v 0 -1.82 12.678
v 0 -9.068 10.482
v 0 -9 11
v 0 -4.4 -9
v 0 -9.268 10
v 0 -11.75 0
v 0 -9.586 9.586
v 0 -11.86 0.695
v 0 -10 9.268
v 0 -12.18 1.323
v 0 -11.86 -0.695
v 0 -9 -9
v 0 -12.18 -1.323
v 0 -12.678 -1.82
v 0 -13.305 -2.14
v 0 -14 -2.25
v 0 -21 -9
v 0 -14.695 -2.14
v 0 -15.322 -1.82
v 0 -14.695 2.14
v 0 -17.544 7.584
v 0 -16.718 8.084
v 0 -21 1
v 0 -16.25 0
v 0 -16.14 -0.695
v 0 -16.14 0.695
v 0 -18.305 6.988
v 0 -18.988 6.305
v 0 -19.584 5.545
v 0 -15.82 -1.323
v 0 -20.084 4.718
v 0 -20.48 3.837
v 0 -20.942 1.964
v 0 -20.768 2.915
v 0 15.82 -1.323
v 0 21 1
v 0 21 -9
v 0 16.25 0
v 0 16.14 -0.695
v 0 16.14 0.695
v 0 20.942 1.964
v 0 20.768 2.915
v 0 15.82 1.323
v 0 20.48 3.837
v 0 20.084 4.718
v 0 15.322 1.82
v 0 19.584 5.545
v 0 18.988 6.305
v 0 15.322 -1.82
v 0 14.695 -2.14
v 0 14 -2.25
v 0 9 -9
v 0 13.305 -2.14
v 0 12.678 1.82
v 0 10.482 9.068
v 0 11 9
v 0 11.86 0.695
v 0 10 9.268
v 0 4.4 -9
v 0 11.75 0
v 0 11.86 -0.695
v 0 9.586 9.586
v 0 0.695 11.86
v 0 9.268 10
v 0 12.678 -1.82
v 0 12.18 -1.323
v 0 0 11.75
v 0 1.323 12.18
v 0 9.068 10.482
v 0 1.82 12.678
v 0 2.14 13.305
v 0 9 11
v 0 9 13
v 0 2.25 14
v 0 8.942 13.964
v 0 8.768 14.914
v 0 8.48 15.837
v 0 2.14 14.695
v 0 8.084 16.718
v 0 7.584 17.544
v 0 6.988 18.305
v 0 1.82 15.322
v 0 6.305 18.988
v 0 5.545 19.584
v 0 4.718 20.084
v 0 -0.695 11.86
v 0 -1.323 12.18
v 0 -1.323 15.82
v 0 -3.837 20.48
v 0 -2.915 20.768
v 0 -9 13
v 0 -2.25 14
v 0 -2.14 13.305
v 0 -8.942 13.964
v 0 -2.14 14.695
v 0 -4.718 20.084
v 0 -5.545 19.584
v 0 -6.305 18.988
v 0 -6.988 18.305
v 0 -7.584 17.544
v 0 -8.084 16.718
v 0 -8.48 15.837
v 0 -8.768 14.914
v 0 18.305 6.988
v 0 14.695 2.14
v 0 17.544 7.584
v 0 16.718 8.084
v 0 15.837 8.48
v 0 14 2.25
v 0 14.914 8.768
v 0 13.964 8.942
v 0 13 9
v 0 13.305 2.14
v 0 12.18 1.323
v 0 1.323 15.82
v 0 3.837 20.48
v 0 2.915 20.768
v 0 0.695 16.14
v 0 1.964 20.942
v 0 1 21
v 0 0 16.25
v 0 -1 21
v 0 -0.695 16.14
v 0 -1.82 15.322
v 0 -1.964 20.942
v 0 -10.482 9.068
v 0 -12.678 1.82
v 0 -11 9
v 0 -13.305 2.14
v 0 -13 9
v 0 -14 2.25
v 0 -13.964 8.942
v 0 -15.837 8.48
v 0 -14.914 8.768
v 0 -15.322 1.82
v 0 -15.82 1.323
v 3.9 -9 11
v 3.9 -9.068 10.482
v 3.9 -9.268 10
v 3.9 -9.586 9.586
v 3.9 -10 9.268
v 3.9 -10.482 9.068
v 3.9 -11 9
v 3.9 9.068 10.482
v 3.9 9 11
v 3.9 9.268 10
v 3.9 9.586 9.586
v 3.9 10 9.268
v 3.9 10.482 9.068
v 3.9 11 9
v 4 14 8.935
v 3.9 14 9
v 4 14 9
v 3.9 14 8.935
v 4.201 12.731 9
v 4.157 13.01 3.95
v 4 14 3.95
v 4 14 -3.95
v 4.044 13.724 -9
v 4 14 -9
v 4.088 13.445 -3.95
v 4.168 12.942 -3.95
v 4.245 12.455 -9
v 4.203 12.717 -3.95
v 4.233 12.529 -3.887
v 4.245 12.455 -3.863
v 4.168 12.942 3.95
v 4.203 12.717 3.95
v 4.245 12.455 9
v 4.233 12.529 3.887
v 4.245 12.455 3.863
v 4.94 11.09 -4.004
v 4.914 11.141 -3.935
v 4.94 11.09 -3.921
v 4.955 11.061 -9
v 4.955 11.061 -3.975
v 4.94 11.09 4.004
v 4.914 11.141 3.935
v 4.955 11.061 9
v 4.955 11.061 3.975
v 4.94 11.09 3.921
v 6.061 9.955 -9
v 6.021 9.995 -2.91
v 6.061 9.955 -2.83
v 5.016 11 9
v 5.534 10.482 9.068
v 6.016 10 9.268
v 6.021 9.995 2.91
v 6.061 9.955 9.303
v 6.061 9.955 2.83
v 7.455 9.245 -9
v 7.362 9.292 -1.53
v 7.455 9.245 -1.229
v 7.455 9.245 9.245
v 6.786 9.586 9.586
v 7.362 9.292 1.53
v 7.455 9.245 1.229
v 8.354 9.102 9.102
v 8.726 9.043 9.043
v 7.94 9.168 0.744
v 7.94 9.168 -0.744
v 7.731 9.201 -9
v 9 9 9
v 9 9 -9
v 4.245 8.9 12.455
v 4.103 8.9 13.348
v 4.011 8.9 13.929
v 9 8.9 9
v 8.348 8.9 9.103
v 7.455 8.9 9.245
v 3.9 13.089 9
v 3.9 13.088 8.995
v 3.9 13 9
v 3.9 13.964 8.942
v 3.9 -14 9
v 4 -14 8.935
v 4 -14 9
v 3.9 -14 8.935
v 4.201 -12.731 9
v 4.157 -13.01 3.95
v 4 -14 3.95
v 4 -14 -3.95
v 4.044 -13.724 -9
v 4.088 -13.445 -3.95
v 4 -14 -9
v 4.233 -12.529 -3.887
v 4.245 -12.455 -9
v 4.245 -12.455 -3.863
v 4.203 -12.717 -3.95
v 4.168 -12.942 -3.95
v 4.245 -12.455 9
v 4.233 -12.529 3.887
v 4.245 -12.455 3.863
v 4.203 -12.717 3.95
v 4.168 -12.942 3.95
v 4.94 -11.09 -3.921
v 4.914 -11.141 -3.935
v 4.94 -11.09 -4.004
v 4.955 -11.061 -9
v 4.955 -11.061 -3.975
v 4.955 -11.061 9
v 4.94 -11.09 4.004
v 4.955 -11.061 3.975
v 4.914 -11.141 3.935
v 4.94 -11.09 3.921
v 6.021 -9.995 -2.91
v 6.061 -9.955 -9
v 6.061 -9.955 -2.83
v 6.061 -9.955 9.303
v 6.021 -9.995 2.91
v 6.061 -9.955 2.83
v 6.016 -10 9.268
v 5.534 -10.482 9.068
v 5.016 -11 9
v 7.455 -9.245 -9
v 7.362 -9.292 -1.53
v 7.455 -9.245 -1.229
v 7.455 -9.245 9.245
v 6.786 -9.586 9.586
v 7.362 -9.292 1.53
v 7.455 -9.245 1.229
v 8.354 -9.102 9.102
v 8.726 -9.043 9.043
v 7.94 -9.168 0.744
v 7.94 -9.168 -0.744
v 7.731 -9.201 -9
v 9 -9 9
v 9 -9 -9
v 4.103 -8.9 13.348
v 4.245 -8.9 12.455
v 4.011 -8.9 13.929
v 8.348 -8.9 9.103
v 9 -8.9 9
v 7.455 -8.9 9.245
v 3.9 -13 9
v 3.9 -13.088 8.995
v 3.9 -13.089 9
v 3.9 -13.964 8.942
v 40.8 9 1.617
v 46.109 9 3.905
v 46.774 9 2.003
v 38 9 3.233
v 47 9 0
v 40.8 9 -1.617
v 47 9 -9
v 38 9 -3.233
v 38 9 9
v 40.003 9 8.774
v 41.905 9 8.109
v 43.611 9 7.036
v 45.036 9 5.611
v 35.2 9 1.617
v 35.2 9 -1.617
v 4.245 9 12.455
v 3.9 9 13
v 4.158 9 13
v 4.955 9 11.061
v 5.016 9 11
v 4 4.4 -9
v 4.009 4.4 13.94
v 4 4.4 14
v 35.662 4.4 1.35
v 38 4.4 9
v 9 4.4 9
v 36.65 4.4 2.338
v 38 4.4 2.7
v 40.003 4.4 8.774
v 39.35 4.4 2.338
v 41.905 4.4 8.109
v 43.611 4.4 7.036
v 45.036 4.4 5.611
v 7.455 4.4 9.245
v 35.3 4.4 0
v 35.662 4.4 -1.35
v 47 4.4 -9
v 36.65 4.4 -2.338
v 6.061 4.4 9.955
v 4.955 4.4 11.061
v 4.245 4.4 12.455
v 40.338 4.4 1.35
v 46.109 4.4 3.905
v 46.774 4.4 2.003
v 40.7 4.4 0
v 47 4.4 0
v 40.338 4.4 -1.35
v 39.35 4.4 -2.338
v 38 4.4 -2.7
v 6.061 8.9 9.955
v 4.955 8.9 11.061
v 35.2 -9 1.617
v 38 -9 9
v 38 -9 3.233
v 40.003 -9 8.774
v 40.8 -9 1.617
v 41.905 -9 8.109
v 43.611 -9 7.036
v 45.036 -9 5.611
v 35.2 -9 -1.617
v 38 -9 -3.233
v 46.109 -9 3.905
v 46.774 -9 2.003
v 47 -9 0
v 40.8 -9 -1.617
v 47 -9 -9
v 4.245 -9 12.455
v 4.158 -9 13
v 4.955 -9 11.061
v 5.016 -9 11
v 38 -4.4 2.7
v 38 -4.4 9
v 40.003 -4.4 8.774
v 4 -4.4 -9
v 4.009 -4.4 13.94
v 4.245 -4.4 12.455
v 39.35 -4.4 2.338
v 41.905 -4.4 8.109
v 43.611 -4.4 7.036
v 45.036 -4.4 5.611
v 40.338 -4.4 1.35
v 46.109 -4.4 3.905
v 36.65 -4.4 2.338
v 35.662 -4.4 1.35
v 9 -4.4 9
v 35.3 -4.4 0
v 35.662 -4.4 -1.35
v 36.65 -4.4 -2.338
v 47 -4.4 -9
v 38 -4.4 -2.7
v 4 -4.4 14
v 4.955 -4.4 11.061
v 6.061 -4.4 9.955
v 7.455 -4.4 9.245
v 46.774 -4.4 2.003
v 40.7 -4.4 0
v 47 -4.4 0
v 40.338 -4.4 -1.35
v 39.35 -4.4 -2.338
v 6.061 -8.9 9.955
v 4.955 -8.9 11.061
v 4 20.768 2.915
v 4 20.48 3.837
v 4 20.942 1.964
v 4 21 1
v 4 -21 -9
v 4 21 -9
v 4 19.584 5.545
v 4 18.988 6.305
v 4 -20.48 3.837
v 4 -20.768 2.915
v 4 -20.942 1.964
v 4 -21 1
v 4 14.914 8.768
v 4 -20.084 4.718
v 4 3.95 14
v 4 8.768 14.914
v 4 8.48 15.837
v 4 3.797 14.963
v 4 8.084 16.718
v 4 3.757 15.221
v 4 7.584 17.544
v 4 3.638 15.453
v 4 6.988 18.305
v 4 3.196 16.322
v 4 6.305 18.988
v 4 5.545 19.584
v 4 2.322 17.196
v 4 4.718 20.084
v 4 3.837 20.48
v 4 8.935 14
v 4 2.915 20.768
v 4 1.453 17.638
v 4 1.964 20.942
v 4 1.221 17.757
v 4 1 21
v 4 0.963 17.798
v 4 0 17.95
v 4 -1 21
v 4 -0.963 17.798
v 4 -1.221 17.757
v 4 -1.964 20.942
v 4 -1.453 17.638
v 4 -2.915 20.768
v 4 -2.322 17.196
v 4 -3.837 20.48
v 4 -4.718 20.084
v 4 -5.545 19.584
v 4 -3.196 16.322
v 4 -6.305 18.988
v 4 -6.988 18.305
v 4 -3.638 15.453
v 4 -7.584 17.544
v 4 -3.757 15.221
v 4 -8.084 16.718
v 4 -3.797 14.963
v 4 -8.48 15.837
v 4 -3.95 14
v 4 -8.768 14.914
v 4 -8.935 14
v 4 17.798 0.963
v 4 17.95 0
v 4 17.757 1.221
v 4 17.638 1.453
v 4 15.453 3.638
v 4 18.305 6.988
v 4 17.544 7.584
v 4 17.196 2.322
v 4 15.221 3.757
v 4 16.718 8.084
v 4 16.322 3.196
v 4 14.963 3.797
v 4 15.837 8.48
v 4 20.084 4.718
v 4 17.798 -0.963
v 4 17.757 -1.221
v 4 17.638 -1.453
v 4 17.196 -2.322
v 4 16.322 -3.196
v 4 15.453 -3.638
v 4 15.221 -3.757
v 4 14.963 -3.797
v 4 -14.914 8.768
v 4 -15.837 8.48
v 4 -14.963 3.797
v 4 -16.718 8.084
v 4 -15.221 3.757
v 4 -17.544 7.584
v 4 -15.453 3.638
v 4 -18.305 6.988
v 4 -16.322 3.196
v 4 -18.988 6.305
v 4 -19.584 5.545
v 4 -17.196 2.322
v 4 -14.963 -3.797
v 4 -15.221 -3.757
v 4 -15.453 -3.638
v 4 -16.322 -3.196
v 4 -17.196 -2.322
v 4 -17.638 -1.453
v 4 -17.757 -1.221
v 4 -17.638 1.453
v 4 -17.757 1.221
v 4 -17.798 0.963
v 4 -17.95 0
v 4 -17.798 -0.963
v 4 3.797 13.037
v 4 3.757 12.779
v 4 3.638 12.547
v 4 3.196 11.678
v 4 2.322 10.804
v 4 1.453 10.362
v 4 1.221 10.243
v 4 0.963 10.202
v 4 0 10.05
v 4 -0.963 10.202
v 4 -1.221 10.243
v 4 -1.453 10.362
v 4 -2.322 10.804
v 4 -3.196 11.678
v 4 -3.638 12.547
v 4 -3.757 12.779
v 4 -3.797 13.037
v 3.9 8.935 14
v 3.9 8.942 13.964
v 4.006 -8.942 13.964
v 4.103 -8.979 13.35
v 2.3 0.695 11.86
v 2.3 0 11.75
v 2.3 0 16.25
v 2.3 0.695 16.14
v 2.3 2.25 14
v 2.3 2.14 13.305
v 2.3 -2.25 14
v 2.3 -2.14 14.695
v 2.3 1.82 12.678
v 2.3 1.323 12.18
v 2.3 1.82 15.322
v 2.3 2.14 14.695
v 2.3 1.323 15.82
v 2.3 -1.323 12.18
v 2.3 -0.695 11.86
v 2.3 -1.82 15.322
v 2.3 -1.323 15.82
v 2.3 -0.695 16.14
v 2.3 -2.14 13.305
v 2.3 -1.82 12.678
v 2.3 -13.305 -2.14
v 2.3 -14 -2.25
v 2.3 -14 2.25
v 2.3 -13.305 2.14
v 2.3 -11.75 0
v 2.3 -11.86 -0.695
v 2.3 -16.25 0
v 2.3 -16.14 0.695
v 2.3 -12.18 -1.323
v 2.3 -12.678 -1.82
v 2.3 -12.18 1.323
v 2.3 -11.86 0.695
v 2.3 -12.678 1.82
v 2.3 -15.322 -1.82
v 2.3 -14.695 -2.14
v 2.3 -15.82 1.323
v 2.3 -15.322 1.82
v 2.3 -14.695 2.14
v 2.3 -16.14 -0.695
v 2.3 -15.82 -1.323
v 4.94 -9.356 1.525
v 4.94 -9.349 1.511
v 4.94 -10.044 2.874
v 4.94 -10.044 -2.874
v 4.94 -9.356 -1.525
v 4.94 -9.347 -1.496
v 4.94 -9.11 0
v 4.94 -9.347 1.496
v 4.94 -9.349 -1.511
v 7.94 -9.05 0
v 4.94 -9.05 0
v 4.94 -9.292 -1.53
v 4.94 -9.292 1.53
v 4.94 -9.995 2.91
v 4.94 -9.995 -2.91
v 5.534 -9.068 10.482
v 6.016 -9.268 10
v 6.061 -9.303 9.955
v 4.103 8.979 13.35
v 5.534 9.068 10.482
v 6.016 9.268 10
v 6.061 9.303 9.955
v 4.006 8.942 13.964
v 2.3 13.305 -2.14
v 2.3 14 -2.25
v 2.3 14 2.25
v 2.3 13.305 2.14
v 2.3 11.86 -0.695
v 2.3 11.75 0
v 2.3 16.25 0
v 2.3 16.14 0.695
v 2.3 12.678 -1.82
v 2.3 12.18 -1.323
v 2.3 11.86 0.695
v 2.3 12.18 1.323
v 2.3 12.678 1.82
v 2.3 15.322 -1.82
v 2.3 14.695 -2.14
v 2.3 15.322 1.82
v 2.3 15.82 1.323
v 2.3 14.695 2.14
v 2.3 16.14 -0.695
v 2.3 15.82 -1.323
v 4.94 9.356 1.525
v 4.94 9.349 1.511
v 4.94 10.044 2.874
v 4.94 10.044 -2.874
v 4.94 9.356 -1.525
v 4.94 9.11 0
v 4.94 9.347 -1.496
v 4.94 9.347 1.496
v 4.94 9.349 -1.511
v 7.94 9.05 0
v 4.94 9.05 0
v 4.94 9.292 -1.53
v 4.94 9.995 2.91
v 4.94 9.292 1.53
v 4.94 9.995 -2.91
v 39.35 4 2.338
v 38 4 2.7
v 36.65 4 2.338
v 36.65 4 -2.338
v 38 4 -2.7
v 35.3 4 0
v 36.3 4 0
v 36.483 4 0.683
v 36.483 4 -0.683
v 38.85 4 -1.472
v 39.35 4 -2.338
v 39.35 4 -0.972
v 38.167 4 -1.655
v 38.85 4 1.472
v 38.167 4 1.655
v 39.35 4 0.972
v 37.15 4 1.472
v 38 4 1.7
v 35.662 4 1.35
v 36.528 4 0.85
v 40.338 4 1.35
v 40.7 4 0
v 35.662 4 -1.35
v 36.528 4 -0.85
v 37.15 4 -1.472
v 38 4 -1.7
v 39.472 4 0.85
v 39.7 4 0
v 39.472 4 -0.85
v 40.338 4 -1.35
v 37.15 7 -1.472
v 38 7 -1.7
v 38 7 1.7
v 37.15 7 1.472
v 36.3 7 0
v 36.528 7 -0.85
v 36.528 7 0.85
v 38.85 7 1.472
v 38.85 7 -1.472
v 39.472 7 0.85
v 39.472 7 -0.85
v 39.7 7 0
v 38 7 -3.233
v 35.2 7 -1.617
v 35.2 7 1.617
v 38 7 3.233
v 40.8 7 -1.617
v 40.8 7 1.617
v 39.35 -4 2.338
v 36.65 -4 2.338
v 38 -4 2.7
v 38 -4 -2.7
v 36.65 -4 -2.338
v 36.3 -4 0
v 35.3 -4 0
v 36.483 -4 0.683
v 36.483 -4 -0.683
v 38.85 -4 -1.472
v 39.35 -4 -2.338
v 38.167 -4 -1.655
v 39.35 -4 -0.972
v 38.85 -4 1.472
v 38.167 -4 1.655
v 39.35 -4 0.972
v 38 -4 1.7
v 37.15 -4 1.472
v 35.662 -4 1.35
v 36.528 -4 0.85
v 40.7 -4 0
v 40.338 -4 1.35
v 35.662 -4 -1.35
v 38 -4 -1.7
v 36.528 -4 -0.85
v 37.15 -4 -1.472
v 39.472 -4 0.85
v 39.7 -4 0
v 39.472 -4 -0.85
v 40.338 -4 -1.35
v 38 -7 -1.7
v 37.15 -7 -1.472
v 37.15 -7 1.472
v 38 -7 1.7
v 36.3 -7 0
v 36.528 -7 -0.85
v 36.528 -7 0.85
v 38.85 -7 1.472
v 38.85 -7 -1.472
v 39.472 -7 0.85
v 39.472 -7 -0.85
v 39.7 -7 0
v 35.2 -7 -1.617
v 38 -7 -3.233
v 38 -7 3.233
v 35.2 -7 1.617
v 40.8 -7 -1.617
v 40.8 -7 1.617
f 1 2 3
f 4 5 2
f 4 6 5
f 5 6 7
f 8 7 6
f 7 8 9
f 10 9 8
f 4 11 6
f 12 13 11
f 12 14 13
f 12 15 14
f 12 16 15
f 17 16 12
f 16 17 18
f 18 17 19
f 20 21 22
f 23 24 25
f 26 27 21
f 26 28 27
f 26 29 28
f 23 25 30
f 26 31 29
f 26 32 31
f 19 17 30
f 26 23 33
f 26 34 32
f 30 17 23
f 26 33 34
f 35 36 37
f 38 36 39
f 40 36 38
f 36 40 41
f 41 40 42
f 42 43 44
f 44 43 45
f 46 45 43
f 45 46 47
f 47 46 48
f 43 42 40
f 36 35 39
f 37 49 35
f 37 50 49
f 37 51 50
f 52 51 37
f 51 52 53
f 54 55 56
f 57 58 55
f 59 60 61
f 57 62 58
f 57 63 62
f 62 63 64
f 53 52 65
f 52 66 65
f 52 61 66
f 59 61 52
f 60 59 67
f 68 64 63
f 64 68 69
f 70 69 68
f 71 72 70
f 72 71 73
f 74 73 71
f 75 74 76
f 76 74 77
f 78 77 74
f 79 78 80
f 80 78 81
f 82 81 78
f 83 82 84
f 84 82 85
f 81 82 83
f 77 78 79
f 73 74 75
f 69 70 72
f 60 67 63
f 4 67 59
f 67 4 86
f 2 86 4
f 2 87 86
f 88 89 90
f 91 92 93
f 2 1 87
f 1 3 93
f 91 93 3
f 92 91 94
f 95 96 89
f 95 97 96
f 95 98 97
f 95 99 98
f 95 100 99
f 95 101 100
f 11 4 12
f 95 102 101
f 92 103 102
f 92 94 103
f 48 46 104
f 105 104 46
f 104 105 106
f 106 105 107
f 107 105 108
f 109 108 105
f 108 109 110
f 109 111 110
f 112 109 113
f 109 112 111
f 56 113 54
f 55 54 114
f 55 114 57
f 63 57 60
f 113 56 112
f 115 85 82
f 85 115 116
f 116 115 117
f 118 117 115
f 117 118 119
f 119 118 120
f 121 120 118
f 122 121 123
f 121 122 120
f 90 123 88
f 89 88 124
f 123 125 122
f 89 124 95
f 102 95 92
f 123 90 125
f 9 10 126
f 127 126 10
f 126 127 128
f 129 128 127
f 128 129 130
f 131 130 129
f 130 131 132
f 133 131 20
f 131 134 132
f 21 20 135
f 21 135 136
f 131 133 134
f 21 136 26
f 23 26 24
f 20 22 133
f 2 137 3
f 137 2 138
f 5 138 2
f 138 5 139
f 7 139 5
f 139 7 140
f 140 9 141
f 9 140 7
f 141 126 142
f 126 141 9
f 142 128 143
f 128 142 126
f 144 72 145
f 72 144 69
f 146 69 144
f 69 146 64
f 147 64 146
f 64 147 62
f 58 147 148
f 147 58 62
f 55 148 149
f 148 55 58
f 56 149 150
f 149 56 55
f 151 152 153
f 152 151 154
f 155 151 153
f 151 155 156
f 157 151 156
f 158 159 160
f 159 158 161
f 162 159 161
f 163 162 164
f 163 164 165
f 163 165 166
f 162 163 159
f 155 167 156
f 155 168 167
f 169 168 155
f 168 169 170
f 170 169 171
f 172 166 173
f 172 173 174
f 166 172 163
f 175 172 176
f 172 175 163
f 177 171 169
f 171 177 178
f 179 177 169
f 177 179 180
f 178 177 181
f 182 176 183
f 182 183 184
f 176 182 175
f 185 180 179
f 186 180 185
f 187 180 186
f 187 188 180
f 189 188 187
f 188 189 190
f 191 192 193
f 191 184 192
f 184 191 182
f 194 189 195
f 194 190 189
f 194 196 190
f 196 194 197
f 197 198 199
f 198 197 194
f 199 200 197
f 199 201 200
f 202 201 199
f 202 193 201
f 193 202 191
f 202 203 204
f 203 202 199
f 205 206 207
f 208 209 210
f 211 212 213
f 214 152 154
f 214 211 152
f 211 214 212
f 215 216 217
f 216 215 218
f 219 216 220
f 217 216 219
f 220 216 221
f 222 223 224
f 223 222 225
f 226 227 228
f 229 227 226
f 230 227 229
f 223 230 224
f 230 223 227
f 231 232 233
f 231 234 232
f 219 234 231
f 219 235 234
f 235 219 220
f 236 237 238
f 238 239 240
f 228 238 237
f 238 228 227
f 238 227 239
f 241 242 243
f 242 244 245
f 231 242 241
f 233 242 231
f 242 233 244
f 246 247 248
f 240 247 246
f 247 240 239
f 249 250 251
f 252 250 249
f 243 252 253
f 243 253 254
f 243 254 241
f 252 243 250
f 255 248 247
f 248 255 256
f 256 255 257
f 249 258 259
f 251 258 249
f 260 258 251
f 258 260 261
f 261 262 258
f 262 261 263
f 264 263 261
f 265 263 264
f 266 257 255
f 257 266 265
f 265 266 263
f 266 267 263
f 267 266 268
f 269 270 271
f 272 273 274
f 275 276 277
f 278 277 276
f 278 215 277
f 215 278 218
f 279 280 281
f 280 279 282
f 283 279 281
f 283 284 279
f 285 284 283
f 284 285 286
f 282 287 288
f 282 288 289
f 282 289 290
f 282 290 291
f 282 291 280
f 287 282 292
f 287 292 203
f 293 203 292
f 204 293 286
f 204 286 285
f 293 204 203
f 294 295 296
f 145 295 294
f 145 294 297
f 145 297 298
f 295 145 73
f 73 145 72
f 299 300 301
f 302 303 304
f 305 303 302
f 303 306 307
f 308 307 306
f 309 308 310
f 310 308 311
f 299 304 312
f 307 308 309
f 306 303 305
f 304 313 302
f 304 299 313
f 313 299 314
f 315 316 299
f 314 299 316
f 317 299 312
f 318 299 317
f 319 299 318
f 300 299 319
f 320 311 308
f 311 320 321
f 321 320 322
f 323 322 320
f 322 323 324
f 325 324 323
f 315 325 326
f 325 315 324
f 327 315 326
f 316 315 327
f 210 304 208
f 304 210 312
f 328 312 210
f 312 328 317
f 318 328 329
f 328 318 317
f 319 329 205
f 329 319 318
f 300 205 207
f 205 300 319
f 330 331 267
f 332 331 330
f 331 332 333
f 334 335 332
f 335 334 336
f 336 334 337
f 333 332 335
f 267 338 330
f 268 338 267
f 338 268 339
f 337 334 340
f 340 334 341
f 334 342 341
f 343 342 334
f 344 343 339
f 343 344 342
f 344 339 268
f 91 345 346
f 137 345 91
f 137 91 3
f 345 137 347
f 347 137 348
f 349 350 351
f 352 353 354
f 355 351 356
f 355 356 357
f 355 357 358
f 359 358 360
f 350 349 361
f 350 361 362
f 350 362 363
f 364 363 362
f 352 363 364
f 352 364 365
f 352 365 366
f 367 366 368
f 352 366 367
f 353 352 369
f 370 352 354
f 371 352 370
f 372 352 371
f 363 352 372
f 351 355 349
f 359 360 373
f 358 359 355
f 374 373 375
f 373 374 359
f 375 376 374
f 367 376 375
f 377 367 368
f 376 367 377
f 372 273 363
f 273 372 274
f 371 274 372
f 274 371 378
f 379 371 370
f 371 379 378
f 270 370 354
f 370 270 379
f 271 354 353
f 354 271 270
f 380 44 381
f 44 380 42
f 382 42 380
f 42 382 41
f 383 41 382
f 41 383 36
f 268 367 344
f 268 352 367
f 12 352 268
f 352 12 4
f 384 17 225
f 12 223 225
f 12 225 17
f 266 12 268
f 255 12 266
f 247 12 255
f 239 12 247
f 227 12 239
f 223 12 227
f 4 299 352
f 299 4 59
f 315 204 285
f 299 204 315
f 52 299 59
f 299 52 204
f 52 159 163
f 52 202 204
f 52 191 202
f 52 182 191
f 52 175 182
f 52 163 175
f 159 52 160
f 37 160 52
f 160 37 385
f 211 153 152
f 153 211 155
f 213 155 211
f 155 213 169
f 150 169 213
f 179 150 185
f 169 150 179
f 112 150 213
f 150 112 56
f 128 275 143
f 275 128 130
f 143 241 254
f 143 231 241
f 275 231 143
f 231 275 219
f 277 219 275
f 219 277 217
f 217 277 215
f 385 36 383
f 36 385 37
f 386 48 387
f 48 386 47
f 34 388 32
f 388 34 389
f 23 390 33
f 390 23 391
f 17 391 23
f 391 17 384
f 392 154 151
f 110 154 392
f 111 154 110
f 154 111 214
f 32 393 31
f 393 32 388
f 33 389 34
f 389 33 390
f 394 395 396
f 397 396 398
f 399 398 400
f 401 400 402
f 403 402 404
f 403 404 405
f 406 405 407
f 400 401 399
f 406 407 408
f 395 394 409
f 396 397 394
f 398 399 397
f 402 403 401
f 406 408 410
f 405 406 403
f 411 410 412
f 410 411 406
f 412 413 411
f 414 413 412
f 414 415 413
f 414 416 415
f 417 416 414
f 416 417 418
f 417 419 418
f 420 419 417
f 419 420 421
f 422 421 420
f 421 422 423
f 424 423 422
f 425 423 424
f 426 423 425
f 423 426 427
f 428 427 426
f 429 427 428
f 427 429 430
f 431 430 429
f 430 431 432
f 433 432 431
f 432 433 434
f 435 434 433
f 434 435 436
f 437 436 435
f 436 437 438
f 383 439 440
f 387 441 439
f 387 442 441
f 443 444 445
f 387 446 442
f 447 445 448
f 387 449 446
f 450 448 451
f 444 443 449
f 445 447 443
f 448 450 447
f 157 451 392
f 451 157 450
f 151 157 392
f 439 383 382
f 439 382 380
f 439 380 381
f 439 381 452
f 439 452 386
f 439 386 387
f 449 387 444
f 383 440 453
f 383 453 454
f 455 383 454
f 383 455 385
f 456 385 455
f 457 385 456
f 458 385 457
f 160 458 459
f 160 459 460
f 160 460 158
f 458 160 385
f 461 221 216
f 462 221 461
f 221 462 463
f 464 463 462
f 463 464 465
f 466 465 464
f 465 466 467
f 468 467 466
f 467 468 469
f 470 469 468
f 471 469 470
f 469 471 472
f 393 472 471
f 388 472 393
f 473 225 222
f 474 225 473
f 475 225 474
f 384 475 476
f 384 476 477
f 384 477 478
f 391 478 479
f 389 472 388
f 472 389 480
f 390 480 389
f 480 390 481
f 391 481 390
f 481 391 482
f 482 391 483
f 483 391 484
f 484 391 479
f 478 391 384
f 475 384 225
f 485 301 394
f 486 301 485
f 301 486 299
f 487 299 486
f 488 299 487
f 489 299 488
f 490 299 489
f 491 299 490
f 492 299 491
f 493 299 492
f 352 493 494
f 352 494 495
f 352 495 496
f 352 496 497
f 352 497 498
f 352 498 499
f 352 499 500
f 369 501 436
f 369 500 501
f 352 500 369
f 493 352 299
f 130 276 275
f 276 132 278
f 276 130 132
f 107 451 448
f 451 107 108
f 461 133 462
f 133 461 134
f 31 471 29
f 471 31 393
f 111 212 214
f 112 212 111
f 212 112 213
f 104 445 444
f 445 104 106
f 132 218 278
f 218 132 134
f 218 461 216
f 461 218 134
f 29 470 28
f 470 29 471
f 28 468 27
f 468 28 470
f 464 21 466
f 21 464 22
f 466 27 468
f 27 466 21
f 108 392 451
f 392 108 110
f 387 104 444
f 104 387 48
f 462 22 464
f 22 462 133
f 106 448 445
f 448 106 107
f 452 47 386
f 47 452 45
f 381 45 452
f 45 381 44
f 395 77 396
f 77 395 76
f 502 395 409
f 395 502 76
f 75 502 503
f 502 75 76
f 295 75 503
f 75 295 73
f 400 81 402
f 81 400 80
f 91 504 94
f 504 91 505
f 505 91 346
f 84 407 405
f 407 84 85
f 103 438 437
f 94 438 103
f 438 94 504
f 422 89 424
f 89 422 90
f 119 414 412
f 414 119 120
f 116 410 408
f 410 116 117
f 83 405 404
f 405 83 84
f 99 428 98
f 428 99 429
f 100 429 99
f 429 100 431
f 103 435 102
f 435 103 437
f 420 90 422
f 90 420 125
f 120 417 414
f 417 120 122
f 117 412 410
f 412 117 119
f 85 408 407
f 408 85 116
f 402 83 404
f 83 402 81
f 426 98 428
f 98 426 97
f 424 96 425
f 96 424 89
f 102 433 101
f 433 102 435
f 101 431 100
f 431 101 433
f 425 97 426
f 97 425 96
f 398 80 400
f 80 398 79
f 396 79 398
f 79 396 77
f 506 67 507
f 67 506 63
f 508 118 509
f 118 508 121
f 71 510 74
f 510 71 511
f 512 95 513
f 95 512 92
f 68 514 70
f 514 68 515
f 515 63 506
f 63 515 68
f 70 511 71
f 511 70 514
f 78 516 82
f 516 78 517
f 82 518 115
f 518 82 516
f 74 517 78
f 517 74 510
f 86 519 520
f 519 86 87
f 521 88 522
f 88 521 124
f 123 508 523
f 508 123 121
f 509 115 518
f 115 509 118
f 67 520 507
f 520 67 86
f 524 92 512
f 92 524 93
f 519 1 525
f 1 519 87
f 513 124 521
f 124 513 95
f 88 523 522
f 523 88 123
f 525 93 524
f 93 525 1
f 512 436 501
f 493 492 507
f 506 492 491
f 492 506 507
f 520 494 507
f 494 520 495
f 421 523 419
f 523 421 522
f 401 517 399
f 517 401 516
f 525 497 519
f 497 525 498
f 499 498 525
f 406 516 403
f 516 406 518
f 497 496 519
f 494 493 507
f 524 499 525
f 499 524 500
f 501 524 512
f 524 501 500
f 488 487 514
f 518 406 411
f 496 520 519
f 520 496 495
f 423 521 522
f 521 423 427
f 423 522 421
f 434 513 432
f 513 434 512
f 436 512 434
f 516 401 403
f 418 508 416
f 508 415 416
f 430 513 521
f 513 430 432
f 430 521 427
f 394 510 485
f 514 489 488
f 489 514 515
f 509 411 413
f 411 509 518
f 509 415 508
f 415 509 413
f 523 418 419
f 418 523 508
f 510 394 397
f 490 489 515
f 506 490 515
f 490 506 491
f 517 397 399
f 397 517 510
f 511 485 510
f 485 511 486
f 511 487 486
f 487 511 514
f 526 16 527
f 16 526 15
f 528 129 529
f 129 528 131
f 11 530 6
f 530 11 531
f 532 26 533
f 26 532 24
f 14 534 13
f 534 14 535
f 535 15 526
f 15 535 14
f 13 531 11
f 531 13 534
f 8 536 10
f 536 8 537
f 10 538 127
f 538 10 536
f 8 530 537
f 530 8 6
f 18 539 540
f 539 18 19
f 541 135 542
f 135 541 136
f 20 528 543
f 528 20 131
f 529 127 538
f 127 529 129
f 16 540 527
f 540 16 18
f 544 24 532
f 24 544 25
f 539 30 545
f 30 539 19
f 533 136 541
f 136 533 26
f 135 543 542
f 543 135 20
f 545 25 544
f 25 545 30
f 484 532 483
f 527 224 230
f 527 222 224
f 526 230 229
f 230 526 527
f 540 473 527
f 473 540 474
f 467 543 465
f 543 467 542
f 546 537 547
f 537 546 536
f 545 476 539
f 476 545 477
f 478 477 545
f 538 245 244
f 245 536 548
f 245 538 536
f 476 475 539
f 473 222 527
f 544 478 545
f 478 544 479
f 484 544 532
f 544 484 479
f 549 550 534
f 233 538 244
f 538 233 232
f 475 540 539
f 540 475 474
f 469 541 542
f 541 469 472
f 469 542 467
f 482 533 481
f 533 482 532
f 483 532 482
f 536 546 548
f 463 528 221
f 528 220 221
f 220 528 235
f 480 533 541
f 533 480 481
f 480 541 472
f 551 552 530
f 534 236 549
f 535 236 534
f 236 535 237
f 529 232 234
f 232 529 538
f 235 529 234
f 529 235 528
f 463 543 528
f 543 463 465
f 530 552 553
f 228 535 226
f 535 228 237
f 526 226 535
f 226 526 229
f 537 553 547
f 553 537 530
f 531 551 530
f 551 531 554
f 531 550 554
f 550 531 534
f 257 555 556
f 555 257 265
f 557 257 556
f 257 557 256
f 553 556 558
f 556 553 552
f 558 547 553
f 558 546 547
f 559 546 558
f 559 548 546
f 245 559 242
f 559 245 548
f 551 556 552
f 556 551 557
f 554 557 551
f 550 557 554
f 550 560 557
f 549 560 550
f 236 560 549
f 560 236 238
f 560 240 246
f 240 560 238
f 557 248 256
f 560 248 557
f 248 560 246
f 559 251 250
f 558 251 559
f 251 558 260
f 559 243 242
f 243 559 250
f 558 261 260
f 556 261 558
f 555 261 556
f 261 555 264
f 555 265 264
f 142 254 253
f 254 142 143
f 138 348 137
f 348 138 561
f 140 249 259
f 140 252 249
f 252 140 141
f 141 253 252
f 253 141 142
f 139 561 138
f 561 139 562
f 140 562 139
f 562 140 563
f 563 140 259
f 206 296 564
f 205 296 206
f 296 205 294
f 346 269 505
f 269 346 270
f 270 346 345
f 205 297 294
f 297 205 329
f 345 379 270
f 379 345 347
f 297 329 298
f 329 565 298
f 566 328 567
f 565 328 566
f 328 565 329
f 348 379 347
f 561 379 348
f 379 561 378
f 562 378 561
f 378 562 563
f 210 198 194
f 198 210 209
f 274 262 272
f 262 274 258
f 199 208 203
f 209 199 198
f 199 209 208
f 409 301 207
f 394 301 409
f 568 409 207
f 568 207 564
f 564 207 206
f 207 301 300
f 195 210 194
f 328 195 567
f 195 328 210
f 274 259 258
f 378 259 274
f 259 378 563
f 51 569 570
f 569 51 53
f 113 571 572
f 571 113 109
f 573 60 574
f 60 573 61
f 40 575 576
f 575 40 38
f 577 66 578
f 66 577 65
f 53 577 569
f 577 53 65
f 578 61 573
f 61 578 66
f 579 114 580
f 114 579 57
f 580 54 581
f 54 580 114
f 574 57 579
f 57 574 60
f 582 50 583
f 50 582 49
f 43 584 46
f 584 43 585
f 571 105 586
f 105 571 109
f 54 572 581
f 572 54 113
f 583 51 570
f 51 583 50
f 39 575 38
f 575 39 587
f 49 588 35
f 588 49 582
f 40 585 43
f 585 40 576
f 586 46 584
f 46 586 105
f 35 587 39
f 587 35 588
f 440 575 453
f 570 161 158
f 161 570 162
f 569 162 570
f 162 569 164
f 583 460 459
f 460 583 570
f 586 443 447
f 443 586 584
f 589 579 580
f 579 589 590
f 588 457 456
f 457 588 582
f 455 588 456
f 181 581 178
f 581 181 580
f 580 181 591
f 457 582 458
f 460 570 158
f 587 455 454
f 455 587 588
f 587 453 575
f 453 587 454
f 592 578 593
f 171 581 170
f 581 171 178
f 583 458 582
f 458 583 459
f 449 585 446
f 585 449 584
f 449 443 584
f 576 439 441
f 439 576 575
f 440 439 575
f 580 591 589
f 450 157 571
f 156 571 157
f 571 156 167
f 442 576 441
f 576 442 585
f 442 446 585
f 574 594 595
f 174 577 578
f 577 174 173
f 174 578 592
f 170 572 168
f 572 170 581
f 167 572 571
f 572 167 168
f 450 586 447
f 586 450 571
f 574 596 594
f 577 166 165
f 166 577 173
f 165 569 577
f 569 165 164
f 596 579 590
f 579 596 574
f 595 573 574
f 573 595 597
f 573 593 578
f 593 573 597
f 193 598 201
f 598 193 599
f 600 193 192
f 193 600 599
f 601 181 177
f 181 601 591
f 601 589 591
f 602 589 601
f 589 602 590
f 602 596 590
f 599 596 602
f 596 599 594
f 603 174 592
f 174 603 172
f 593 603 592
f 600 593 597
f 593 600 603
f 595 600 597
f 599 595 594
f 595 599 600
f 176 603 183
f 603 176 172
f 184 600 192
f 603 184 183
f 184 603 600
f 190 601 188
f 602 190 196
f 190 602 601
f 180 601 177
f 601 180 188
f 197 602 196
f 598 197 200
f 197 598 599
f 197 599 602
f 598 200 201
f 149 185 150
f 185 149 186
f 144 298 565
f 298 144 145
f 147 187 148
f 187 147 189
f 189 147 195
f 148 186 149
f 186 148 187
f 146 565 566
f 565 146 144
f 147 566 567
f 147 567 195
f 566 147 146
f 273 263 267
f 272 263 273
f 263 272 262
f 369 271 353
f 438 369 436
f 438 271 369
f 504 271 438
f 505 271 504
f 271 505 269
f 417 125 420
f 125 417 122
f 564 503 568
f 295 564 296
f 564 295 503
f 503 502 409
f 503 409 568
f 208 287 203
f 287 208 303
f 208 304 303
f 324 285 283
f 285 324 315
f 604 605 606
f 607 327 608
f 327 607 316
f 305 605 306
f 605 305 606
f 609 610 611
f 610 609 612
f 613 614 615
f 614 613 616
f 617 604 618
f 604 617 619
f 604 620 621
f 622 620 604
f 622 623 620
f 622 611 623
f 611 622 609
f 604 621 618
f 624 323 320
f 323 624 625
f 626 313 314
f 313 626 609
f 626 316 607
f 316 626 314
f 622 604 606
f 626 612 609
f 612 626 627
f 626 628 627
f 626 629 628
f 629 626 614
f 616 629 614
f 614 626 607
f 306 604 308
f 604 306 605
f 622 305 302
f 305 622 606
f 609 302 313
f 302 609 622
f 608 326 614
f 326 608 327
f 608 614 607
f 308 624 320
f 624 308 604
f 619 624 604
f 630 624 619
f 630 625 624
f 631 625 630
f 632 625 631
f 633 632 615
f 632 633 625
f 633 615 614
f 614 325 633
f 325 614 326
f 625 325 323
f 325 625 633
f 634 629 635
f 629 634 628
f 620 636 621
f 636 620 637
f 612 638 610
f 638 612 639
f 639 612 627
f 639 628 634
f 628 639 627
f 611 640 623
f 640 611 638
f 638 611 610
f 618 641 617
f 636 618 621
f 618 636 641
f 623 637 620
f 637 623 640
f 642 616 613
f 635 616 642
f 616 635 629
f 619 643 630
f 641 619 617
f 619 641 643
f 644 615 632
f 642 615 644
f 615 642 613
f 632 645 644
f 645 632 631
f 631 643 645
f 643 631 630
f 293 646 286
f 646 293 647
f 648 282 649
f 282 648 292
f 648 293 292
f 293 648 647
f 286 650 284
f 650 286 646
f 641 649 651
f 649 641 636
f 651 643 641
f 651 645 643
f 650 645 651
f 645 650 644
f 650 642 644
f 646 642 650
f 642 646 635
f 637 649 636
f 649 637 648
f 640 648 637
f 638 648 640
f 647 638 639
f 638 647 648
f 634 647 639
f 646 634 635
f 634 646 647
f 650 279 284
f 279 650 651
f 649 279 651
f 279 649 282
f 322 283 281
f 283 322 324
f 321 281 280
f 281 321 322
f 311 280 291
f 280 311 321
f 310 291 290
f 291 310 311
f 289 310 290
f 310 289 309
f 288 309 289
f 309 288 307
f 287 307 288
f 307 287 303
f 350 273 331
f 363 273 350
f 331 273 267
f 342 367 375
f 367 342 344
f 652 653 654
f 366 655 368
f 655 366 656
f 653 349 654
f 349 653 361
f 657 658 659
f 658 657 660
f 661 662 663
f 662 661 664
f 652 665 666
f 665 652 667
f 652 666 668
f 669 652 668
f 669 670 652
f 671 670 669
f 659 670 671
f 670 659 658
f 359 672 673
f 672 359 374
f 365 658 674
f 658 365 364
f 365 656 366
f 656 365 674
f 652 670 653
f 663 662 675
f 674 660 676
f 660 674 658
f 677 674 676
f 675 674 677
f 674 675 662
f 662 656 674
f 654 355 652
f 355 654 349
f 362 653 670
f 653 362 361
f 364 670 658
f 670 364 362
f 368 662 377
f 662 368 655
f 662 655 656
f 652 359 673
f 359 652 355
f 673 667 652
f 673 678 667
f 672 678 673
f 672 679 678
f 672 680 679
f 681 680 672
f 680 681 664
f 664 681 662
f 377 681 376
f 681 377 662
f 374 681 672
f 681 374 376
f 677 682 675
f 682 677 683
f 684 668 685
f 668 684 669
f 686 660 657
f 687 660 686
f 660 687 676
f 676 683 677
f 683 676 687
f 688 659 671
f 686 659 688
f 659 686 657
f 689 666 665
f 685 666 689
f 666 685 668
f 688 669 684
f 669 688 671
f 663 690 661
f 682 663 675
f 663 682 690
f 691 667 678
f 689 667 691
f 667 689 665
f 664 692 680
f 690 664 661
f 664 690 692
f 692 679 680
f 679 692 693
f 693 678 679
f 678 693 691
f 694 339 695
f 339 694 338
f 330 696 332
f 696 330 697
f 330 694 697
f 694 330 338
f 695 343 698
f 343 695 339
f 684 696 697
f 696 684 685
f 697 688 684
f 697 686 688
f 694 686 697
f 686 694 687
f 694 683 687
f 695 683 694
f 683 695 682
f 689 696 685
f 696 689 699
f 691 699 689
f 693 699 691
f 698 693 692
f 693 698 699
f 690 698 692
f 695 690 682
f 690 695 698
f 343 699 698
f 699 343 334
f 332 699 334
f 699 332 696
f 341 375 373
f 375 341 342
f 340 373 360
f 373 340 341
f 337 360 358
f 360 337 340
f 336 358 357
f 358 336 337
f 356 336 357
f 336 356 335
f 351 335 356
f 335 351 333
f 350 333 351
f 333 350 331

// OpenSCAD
// file: parameters.scad
// Parameters shared between modules
Base_th = 4;
Beam_width = 15;
Wiggle = 0.25;
Fat_beam_width = Beam_width + Wiggle;
Beam_length = 400;
Wall_th = 2.5;
Min_beam_width = 12.5;
Max_beam_width = 17.5;
Zip_th = 2;
Zip_h = Zip_th + Max_beam_width - Min_beam_width;
Zip_w = 5.0;
Nema17_cube_width          = 42.43;
Nema17_screw_hole_width    = 43.74; // Opposite corner screws
Nema17_ring_diameter       = 22;
Nema17_cube_height         = 39.36;
Nema17_shaft_height        = 63.65;
Nema17_ring_height         = 2;
Nema17_shaft_radius        = 5/2;
b608_outer_dia = 22.2;
b608_width = 7.05;
b608_bore_r = 4;
Gap_between_sandwich_and_plate = 1.5 + Base_th; // 1.5 mm for wiggle
Motor_bracket_flerp_r = 6;
Motor_bracket_flerp = 14;
Motor_bracket_cw = Nema17_cube_width + 6;
Motor_bracket_att_ang = 50;
Mounting_screw_d = 4.5;
Mounting_screw_head_d = 14;
Spool_outer_wall_th = 4;

// Corner clamp parameters
Cc_l1 = (Fat_beam_width+2*Wall_th)*2*sqrt(3);
Cc_rad_b = 4;
Cc_action_point_from_mid = Cc_l1/sqrt(3)-2*Cc_rad_b-1.3;  // 1.3 chosen arbitrarily
Cc_plastic_length = sqrt(Cc_action_point_from_mid*Cc_action_point_from_mid
                       - (Cc_action_point_from_mid/2)*(Cc_action_point_from_mid/2));

// The distance between the two action points on the mover
Sidelength = Beam_length + 2*Cc_plastic_length;

/////// Layout parameters ////////////
Ext_sidelength = Sidelength+77;
Additional_added_plate_side_length = 10;
Yshift_top_plate = -25;

/////// Gear parameters ////////////
Circular_pitch = 262;
Motor_teeth = 10;
Gear_height = 21.4-3;
Motor_pitch                      = (Motor_teeth*Circular_pitch/360);
Motor_pitch_diametrial           = Motor_teeth/(2*Motor_pitch);
Motor_outer_radius               = Motor_pitch + 1/Motor_pitch_diametrial;
Spool_teeth = 100;
Spool_r = 65;
Spool_height = 8;
Spool_pitch                      = (Spool_teeth*Circular_pitch/360);
Spool_pitch_diametrial           = Spool_teeth/(2*Spool_pitch);
Spool_outer_radius               = Spool_pitch + 1/Spool_pitch_diametrial;
Sep_disc_radius = 161.83/2; // Made to match 255 teeth gt2 pulley
Motor_bracket_depth = Gear_height+1+7+Nema17_ring_height+1+Gap_between_sandwich_and_plate;
Spool_core_flerp0 = 16+3;

/////// Lineroller parameters ////////////
b623_width  = 4;
b623_bore_r = 3/2;
b623_vgroove_big_r = 12/2;
b623_vgroove_small_r = 10/2;
b623_outer_dia = 10;

Depth_of_roller_base = 18;
Roller_flerp = 6;
Roller_l = 42;
Roller_fl = (Roller_l - Depth_of_roller_base)/2;

Line_roller_wall_th = 5;

Line_roller_ABC_winch_h =  Gap_between_sandwich_and_plate
                           + Sep_disc_radius
                           - Spool_r
                           + Depth_of_roller_base/2
                           + b623_vgroove_small_r;


Ptfe_r = 2.1;
Roller_base_r = 8;
Screw_h = 2;
Screw_head_h = 2;
Spool_center_bearing_wall_th = 5;
Corner_clamp_bearings_center_to_center = 15;
Anchor_bearings_center_to_center = Corner_clamp_bearings_center_to_center + b623_outer_dia;

//// Lineroller anchor parameters /////

Bearing_wall = 1;
Bearing_0_x = 2*b623_vgroove_big_r+Bearing_wall+5.3;
Bearing_1_x = b623_vgroove_small_r-0.9;
Move_tower = -12.2;
Lower_bearing_z = 13;
Higher_bearing_z = Lower_bearing_z + Corner_clamp_bearings_center_to_center;

//// Cable Clamp parameters /////
Bit_width = 12;
Cable_r=2.5;


//// Donkey and encoder parameters /////

Donkey_shaft_d = 6;
Donkey_h = 65.12;
Donkey_body_d = 50;
Donkey_feet_th = 3.5;

Encoder_LDP3806_shaft_d = 6;
Encoder_LDP3806_d = 38;

// Belt drive parameters
GT2_belt_width = 6.5;
GT2_gear_height = GT2_belt_width + 2;
GT2_motor_gear_height = 16;
GT2_motor_gear_outer_dia = 16;
GT2_spool_gear_teeth = 255;
GT2_motor_gear_teeth = 20;
Torx_depth = GT2_gear_height/2;
Belt_roller_h = 47;

// Spacer parameters
Sandwich_ABC_width = 2*(1+Spool_height) + GT2_gear_height;
Sandwich_D_width = 3*(1+Spool_height) + GT2_gear_height;

Spacer_ABC_width = Sandwich_ABC_width - 2*b608_width;
Spacer_D_width = Sandwich_D_width -2*b608_width;


spd = Spool_height+GT2_gear_height;
// Horizontal_deflector_cube_y_size must be exact this number
// because we want to deflect AB-lines
// 60 degrees on the ceiling unit, and we want to put two
// deflectors in a row and get a distance between bearings
// that maintain the distance d when deflecting 60 degrees
Horizontal_deflector_cube_y_size = (2/sqrt(3))*spd;
// main file
include <parameters.scad>
use <util.scad>


rotate([0,90,0])
belt_roller(with_bearing=true);
module belt_roller(twod = false,
                   with_bearings = false){
  space_between_walls = 2*b623_width + 0.8;
  wall_th = (Depth_of_roller_base - space_between_walls)/2;

  if(with_bearings){
    translate([0,0,Belt_roller_h-Depth_of_roller_base/2]){
      rotate([90,0,0])
        b623();
      rotate([-90,0,0])
        b623();
    }
  }

  if(!twod)
    roller_wall_pair(space_between_walls, wall_th, Belt_roller_h);
}
